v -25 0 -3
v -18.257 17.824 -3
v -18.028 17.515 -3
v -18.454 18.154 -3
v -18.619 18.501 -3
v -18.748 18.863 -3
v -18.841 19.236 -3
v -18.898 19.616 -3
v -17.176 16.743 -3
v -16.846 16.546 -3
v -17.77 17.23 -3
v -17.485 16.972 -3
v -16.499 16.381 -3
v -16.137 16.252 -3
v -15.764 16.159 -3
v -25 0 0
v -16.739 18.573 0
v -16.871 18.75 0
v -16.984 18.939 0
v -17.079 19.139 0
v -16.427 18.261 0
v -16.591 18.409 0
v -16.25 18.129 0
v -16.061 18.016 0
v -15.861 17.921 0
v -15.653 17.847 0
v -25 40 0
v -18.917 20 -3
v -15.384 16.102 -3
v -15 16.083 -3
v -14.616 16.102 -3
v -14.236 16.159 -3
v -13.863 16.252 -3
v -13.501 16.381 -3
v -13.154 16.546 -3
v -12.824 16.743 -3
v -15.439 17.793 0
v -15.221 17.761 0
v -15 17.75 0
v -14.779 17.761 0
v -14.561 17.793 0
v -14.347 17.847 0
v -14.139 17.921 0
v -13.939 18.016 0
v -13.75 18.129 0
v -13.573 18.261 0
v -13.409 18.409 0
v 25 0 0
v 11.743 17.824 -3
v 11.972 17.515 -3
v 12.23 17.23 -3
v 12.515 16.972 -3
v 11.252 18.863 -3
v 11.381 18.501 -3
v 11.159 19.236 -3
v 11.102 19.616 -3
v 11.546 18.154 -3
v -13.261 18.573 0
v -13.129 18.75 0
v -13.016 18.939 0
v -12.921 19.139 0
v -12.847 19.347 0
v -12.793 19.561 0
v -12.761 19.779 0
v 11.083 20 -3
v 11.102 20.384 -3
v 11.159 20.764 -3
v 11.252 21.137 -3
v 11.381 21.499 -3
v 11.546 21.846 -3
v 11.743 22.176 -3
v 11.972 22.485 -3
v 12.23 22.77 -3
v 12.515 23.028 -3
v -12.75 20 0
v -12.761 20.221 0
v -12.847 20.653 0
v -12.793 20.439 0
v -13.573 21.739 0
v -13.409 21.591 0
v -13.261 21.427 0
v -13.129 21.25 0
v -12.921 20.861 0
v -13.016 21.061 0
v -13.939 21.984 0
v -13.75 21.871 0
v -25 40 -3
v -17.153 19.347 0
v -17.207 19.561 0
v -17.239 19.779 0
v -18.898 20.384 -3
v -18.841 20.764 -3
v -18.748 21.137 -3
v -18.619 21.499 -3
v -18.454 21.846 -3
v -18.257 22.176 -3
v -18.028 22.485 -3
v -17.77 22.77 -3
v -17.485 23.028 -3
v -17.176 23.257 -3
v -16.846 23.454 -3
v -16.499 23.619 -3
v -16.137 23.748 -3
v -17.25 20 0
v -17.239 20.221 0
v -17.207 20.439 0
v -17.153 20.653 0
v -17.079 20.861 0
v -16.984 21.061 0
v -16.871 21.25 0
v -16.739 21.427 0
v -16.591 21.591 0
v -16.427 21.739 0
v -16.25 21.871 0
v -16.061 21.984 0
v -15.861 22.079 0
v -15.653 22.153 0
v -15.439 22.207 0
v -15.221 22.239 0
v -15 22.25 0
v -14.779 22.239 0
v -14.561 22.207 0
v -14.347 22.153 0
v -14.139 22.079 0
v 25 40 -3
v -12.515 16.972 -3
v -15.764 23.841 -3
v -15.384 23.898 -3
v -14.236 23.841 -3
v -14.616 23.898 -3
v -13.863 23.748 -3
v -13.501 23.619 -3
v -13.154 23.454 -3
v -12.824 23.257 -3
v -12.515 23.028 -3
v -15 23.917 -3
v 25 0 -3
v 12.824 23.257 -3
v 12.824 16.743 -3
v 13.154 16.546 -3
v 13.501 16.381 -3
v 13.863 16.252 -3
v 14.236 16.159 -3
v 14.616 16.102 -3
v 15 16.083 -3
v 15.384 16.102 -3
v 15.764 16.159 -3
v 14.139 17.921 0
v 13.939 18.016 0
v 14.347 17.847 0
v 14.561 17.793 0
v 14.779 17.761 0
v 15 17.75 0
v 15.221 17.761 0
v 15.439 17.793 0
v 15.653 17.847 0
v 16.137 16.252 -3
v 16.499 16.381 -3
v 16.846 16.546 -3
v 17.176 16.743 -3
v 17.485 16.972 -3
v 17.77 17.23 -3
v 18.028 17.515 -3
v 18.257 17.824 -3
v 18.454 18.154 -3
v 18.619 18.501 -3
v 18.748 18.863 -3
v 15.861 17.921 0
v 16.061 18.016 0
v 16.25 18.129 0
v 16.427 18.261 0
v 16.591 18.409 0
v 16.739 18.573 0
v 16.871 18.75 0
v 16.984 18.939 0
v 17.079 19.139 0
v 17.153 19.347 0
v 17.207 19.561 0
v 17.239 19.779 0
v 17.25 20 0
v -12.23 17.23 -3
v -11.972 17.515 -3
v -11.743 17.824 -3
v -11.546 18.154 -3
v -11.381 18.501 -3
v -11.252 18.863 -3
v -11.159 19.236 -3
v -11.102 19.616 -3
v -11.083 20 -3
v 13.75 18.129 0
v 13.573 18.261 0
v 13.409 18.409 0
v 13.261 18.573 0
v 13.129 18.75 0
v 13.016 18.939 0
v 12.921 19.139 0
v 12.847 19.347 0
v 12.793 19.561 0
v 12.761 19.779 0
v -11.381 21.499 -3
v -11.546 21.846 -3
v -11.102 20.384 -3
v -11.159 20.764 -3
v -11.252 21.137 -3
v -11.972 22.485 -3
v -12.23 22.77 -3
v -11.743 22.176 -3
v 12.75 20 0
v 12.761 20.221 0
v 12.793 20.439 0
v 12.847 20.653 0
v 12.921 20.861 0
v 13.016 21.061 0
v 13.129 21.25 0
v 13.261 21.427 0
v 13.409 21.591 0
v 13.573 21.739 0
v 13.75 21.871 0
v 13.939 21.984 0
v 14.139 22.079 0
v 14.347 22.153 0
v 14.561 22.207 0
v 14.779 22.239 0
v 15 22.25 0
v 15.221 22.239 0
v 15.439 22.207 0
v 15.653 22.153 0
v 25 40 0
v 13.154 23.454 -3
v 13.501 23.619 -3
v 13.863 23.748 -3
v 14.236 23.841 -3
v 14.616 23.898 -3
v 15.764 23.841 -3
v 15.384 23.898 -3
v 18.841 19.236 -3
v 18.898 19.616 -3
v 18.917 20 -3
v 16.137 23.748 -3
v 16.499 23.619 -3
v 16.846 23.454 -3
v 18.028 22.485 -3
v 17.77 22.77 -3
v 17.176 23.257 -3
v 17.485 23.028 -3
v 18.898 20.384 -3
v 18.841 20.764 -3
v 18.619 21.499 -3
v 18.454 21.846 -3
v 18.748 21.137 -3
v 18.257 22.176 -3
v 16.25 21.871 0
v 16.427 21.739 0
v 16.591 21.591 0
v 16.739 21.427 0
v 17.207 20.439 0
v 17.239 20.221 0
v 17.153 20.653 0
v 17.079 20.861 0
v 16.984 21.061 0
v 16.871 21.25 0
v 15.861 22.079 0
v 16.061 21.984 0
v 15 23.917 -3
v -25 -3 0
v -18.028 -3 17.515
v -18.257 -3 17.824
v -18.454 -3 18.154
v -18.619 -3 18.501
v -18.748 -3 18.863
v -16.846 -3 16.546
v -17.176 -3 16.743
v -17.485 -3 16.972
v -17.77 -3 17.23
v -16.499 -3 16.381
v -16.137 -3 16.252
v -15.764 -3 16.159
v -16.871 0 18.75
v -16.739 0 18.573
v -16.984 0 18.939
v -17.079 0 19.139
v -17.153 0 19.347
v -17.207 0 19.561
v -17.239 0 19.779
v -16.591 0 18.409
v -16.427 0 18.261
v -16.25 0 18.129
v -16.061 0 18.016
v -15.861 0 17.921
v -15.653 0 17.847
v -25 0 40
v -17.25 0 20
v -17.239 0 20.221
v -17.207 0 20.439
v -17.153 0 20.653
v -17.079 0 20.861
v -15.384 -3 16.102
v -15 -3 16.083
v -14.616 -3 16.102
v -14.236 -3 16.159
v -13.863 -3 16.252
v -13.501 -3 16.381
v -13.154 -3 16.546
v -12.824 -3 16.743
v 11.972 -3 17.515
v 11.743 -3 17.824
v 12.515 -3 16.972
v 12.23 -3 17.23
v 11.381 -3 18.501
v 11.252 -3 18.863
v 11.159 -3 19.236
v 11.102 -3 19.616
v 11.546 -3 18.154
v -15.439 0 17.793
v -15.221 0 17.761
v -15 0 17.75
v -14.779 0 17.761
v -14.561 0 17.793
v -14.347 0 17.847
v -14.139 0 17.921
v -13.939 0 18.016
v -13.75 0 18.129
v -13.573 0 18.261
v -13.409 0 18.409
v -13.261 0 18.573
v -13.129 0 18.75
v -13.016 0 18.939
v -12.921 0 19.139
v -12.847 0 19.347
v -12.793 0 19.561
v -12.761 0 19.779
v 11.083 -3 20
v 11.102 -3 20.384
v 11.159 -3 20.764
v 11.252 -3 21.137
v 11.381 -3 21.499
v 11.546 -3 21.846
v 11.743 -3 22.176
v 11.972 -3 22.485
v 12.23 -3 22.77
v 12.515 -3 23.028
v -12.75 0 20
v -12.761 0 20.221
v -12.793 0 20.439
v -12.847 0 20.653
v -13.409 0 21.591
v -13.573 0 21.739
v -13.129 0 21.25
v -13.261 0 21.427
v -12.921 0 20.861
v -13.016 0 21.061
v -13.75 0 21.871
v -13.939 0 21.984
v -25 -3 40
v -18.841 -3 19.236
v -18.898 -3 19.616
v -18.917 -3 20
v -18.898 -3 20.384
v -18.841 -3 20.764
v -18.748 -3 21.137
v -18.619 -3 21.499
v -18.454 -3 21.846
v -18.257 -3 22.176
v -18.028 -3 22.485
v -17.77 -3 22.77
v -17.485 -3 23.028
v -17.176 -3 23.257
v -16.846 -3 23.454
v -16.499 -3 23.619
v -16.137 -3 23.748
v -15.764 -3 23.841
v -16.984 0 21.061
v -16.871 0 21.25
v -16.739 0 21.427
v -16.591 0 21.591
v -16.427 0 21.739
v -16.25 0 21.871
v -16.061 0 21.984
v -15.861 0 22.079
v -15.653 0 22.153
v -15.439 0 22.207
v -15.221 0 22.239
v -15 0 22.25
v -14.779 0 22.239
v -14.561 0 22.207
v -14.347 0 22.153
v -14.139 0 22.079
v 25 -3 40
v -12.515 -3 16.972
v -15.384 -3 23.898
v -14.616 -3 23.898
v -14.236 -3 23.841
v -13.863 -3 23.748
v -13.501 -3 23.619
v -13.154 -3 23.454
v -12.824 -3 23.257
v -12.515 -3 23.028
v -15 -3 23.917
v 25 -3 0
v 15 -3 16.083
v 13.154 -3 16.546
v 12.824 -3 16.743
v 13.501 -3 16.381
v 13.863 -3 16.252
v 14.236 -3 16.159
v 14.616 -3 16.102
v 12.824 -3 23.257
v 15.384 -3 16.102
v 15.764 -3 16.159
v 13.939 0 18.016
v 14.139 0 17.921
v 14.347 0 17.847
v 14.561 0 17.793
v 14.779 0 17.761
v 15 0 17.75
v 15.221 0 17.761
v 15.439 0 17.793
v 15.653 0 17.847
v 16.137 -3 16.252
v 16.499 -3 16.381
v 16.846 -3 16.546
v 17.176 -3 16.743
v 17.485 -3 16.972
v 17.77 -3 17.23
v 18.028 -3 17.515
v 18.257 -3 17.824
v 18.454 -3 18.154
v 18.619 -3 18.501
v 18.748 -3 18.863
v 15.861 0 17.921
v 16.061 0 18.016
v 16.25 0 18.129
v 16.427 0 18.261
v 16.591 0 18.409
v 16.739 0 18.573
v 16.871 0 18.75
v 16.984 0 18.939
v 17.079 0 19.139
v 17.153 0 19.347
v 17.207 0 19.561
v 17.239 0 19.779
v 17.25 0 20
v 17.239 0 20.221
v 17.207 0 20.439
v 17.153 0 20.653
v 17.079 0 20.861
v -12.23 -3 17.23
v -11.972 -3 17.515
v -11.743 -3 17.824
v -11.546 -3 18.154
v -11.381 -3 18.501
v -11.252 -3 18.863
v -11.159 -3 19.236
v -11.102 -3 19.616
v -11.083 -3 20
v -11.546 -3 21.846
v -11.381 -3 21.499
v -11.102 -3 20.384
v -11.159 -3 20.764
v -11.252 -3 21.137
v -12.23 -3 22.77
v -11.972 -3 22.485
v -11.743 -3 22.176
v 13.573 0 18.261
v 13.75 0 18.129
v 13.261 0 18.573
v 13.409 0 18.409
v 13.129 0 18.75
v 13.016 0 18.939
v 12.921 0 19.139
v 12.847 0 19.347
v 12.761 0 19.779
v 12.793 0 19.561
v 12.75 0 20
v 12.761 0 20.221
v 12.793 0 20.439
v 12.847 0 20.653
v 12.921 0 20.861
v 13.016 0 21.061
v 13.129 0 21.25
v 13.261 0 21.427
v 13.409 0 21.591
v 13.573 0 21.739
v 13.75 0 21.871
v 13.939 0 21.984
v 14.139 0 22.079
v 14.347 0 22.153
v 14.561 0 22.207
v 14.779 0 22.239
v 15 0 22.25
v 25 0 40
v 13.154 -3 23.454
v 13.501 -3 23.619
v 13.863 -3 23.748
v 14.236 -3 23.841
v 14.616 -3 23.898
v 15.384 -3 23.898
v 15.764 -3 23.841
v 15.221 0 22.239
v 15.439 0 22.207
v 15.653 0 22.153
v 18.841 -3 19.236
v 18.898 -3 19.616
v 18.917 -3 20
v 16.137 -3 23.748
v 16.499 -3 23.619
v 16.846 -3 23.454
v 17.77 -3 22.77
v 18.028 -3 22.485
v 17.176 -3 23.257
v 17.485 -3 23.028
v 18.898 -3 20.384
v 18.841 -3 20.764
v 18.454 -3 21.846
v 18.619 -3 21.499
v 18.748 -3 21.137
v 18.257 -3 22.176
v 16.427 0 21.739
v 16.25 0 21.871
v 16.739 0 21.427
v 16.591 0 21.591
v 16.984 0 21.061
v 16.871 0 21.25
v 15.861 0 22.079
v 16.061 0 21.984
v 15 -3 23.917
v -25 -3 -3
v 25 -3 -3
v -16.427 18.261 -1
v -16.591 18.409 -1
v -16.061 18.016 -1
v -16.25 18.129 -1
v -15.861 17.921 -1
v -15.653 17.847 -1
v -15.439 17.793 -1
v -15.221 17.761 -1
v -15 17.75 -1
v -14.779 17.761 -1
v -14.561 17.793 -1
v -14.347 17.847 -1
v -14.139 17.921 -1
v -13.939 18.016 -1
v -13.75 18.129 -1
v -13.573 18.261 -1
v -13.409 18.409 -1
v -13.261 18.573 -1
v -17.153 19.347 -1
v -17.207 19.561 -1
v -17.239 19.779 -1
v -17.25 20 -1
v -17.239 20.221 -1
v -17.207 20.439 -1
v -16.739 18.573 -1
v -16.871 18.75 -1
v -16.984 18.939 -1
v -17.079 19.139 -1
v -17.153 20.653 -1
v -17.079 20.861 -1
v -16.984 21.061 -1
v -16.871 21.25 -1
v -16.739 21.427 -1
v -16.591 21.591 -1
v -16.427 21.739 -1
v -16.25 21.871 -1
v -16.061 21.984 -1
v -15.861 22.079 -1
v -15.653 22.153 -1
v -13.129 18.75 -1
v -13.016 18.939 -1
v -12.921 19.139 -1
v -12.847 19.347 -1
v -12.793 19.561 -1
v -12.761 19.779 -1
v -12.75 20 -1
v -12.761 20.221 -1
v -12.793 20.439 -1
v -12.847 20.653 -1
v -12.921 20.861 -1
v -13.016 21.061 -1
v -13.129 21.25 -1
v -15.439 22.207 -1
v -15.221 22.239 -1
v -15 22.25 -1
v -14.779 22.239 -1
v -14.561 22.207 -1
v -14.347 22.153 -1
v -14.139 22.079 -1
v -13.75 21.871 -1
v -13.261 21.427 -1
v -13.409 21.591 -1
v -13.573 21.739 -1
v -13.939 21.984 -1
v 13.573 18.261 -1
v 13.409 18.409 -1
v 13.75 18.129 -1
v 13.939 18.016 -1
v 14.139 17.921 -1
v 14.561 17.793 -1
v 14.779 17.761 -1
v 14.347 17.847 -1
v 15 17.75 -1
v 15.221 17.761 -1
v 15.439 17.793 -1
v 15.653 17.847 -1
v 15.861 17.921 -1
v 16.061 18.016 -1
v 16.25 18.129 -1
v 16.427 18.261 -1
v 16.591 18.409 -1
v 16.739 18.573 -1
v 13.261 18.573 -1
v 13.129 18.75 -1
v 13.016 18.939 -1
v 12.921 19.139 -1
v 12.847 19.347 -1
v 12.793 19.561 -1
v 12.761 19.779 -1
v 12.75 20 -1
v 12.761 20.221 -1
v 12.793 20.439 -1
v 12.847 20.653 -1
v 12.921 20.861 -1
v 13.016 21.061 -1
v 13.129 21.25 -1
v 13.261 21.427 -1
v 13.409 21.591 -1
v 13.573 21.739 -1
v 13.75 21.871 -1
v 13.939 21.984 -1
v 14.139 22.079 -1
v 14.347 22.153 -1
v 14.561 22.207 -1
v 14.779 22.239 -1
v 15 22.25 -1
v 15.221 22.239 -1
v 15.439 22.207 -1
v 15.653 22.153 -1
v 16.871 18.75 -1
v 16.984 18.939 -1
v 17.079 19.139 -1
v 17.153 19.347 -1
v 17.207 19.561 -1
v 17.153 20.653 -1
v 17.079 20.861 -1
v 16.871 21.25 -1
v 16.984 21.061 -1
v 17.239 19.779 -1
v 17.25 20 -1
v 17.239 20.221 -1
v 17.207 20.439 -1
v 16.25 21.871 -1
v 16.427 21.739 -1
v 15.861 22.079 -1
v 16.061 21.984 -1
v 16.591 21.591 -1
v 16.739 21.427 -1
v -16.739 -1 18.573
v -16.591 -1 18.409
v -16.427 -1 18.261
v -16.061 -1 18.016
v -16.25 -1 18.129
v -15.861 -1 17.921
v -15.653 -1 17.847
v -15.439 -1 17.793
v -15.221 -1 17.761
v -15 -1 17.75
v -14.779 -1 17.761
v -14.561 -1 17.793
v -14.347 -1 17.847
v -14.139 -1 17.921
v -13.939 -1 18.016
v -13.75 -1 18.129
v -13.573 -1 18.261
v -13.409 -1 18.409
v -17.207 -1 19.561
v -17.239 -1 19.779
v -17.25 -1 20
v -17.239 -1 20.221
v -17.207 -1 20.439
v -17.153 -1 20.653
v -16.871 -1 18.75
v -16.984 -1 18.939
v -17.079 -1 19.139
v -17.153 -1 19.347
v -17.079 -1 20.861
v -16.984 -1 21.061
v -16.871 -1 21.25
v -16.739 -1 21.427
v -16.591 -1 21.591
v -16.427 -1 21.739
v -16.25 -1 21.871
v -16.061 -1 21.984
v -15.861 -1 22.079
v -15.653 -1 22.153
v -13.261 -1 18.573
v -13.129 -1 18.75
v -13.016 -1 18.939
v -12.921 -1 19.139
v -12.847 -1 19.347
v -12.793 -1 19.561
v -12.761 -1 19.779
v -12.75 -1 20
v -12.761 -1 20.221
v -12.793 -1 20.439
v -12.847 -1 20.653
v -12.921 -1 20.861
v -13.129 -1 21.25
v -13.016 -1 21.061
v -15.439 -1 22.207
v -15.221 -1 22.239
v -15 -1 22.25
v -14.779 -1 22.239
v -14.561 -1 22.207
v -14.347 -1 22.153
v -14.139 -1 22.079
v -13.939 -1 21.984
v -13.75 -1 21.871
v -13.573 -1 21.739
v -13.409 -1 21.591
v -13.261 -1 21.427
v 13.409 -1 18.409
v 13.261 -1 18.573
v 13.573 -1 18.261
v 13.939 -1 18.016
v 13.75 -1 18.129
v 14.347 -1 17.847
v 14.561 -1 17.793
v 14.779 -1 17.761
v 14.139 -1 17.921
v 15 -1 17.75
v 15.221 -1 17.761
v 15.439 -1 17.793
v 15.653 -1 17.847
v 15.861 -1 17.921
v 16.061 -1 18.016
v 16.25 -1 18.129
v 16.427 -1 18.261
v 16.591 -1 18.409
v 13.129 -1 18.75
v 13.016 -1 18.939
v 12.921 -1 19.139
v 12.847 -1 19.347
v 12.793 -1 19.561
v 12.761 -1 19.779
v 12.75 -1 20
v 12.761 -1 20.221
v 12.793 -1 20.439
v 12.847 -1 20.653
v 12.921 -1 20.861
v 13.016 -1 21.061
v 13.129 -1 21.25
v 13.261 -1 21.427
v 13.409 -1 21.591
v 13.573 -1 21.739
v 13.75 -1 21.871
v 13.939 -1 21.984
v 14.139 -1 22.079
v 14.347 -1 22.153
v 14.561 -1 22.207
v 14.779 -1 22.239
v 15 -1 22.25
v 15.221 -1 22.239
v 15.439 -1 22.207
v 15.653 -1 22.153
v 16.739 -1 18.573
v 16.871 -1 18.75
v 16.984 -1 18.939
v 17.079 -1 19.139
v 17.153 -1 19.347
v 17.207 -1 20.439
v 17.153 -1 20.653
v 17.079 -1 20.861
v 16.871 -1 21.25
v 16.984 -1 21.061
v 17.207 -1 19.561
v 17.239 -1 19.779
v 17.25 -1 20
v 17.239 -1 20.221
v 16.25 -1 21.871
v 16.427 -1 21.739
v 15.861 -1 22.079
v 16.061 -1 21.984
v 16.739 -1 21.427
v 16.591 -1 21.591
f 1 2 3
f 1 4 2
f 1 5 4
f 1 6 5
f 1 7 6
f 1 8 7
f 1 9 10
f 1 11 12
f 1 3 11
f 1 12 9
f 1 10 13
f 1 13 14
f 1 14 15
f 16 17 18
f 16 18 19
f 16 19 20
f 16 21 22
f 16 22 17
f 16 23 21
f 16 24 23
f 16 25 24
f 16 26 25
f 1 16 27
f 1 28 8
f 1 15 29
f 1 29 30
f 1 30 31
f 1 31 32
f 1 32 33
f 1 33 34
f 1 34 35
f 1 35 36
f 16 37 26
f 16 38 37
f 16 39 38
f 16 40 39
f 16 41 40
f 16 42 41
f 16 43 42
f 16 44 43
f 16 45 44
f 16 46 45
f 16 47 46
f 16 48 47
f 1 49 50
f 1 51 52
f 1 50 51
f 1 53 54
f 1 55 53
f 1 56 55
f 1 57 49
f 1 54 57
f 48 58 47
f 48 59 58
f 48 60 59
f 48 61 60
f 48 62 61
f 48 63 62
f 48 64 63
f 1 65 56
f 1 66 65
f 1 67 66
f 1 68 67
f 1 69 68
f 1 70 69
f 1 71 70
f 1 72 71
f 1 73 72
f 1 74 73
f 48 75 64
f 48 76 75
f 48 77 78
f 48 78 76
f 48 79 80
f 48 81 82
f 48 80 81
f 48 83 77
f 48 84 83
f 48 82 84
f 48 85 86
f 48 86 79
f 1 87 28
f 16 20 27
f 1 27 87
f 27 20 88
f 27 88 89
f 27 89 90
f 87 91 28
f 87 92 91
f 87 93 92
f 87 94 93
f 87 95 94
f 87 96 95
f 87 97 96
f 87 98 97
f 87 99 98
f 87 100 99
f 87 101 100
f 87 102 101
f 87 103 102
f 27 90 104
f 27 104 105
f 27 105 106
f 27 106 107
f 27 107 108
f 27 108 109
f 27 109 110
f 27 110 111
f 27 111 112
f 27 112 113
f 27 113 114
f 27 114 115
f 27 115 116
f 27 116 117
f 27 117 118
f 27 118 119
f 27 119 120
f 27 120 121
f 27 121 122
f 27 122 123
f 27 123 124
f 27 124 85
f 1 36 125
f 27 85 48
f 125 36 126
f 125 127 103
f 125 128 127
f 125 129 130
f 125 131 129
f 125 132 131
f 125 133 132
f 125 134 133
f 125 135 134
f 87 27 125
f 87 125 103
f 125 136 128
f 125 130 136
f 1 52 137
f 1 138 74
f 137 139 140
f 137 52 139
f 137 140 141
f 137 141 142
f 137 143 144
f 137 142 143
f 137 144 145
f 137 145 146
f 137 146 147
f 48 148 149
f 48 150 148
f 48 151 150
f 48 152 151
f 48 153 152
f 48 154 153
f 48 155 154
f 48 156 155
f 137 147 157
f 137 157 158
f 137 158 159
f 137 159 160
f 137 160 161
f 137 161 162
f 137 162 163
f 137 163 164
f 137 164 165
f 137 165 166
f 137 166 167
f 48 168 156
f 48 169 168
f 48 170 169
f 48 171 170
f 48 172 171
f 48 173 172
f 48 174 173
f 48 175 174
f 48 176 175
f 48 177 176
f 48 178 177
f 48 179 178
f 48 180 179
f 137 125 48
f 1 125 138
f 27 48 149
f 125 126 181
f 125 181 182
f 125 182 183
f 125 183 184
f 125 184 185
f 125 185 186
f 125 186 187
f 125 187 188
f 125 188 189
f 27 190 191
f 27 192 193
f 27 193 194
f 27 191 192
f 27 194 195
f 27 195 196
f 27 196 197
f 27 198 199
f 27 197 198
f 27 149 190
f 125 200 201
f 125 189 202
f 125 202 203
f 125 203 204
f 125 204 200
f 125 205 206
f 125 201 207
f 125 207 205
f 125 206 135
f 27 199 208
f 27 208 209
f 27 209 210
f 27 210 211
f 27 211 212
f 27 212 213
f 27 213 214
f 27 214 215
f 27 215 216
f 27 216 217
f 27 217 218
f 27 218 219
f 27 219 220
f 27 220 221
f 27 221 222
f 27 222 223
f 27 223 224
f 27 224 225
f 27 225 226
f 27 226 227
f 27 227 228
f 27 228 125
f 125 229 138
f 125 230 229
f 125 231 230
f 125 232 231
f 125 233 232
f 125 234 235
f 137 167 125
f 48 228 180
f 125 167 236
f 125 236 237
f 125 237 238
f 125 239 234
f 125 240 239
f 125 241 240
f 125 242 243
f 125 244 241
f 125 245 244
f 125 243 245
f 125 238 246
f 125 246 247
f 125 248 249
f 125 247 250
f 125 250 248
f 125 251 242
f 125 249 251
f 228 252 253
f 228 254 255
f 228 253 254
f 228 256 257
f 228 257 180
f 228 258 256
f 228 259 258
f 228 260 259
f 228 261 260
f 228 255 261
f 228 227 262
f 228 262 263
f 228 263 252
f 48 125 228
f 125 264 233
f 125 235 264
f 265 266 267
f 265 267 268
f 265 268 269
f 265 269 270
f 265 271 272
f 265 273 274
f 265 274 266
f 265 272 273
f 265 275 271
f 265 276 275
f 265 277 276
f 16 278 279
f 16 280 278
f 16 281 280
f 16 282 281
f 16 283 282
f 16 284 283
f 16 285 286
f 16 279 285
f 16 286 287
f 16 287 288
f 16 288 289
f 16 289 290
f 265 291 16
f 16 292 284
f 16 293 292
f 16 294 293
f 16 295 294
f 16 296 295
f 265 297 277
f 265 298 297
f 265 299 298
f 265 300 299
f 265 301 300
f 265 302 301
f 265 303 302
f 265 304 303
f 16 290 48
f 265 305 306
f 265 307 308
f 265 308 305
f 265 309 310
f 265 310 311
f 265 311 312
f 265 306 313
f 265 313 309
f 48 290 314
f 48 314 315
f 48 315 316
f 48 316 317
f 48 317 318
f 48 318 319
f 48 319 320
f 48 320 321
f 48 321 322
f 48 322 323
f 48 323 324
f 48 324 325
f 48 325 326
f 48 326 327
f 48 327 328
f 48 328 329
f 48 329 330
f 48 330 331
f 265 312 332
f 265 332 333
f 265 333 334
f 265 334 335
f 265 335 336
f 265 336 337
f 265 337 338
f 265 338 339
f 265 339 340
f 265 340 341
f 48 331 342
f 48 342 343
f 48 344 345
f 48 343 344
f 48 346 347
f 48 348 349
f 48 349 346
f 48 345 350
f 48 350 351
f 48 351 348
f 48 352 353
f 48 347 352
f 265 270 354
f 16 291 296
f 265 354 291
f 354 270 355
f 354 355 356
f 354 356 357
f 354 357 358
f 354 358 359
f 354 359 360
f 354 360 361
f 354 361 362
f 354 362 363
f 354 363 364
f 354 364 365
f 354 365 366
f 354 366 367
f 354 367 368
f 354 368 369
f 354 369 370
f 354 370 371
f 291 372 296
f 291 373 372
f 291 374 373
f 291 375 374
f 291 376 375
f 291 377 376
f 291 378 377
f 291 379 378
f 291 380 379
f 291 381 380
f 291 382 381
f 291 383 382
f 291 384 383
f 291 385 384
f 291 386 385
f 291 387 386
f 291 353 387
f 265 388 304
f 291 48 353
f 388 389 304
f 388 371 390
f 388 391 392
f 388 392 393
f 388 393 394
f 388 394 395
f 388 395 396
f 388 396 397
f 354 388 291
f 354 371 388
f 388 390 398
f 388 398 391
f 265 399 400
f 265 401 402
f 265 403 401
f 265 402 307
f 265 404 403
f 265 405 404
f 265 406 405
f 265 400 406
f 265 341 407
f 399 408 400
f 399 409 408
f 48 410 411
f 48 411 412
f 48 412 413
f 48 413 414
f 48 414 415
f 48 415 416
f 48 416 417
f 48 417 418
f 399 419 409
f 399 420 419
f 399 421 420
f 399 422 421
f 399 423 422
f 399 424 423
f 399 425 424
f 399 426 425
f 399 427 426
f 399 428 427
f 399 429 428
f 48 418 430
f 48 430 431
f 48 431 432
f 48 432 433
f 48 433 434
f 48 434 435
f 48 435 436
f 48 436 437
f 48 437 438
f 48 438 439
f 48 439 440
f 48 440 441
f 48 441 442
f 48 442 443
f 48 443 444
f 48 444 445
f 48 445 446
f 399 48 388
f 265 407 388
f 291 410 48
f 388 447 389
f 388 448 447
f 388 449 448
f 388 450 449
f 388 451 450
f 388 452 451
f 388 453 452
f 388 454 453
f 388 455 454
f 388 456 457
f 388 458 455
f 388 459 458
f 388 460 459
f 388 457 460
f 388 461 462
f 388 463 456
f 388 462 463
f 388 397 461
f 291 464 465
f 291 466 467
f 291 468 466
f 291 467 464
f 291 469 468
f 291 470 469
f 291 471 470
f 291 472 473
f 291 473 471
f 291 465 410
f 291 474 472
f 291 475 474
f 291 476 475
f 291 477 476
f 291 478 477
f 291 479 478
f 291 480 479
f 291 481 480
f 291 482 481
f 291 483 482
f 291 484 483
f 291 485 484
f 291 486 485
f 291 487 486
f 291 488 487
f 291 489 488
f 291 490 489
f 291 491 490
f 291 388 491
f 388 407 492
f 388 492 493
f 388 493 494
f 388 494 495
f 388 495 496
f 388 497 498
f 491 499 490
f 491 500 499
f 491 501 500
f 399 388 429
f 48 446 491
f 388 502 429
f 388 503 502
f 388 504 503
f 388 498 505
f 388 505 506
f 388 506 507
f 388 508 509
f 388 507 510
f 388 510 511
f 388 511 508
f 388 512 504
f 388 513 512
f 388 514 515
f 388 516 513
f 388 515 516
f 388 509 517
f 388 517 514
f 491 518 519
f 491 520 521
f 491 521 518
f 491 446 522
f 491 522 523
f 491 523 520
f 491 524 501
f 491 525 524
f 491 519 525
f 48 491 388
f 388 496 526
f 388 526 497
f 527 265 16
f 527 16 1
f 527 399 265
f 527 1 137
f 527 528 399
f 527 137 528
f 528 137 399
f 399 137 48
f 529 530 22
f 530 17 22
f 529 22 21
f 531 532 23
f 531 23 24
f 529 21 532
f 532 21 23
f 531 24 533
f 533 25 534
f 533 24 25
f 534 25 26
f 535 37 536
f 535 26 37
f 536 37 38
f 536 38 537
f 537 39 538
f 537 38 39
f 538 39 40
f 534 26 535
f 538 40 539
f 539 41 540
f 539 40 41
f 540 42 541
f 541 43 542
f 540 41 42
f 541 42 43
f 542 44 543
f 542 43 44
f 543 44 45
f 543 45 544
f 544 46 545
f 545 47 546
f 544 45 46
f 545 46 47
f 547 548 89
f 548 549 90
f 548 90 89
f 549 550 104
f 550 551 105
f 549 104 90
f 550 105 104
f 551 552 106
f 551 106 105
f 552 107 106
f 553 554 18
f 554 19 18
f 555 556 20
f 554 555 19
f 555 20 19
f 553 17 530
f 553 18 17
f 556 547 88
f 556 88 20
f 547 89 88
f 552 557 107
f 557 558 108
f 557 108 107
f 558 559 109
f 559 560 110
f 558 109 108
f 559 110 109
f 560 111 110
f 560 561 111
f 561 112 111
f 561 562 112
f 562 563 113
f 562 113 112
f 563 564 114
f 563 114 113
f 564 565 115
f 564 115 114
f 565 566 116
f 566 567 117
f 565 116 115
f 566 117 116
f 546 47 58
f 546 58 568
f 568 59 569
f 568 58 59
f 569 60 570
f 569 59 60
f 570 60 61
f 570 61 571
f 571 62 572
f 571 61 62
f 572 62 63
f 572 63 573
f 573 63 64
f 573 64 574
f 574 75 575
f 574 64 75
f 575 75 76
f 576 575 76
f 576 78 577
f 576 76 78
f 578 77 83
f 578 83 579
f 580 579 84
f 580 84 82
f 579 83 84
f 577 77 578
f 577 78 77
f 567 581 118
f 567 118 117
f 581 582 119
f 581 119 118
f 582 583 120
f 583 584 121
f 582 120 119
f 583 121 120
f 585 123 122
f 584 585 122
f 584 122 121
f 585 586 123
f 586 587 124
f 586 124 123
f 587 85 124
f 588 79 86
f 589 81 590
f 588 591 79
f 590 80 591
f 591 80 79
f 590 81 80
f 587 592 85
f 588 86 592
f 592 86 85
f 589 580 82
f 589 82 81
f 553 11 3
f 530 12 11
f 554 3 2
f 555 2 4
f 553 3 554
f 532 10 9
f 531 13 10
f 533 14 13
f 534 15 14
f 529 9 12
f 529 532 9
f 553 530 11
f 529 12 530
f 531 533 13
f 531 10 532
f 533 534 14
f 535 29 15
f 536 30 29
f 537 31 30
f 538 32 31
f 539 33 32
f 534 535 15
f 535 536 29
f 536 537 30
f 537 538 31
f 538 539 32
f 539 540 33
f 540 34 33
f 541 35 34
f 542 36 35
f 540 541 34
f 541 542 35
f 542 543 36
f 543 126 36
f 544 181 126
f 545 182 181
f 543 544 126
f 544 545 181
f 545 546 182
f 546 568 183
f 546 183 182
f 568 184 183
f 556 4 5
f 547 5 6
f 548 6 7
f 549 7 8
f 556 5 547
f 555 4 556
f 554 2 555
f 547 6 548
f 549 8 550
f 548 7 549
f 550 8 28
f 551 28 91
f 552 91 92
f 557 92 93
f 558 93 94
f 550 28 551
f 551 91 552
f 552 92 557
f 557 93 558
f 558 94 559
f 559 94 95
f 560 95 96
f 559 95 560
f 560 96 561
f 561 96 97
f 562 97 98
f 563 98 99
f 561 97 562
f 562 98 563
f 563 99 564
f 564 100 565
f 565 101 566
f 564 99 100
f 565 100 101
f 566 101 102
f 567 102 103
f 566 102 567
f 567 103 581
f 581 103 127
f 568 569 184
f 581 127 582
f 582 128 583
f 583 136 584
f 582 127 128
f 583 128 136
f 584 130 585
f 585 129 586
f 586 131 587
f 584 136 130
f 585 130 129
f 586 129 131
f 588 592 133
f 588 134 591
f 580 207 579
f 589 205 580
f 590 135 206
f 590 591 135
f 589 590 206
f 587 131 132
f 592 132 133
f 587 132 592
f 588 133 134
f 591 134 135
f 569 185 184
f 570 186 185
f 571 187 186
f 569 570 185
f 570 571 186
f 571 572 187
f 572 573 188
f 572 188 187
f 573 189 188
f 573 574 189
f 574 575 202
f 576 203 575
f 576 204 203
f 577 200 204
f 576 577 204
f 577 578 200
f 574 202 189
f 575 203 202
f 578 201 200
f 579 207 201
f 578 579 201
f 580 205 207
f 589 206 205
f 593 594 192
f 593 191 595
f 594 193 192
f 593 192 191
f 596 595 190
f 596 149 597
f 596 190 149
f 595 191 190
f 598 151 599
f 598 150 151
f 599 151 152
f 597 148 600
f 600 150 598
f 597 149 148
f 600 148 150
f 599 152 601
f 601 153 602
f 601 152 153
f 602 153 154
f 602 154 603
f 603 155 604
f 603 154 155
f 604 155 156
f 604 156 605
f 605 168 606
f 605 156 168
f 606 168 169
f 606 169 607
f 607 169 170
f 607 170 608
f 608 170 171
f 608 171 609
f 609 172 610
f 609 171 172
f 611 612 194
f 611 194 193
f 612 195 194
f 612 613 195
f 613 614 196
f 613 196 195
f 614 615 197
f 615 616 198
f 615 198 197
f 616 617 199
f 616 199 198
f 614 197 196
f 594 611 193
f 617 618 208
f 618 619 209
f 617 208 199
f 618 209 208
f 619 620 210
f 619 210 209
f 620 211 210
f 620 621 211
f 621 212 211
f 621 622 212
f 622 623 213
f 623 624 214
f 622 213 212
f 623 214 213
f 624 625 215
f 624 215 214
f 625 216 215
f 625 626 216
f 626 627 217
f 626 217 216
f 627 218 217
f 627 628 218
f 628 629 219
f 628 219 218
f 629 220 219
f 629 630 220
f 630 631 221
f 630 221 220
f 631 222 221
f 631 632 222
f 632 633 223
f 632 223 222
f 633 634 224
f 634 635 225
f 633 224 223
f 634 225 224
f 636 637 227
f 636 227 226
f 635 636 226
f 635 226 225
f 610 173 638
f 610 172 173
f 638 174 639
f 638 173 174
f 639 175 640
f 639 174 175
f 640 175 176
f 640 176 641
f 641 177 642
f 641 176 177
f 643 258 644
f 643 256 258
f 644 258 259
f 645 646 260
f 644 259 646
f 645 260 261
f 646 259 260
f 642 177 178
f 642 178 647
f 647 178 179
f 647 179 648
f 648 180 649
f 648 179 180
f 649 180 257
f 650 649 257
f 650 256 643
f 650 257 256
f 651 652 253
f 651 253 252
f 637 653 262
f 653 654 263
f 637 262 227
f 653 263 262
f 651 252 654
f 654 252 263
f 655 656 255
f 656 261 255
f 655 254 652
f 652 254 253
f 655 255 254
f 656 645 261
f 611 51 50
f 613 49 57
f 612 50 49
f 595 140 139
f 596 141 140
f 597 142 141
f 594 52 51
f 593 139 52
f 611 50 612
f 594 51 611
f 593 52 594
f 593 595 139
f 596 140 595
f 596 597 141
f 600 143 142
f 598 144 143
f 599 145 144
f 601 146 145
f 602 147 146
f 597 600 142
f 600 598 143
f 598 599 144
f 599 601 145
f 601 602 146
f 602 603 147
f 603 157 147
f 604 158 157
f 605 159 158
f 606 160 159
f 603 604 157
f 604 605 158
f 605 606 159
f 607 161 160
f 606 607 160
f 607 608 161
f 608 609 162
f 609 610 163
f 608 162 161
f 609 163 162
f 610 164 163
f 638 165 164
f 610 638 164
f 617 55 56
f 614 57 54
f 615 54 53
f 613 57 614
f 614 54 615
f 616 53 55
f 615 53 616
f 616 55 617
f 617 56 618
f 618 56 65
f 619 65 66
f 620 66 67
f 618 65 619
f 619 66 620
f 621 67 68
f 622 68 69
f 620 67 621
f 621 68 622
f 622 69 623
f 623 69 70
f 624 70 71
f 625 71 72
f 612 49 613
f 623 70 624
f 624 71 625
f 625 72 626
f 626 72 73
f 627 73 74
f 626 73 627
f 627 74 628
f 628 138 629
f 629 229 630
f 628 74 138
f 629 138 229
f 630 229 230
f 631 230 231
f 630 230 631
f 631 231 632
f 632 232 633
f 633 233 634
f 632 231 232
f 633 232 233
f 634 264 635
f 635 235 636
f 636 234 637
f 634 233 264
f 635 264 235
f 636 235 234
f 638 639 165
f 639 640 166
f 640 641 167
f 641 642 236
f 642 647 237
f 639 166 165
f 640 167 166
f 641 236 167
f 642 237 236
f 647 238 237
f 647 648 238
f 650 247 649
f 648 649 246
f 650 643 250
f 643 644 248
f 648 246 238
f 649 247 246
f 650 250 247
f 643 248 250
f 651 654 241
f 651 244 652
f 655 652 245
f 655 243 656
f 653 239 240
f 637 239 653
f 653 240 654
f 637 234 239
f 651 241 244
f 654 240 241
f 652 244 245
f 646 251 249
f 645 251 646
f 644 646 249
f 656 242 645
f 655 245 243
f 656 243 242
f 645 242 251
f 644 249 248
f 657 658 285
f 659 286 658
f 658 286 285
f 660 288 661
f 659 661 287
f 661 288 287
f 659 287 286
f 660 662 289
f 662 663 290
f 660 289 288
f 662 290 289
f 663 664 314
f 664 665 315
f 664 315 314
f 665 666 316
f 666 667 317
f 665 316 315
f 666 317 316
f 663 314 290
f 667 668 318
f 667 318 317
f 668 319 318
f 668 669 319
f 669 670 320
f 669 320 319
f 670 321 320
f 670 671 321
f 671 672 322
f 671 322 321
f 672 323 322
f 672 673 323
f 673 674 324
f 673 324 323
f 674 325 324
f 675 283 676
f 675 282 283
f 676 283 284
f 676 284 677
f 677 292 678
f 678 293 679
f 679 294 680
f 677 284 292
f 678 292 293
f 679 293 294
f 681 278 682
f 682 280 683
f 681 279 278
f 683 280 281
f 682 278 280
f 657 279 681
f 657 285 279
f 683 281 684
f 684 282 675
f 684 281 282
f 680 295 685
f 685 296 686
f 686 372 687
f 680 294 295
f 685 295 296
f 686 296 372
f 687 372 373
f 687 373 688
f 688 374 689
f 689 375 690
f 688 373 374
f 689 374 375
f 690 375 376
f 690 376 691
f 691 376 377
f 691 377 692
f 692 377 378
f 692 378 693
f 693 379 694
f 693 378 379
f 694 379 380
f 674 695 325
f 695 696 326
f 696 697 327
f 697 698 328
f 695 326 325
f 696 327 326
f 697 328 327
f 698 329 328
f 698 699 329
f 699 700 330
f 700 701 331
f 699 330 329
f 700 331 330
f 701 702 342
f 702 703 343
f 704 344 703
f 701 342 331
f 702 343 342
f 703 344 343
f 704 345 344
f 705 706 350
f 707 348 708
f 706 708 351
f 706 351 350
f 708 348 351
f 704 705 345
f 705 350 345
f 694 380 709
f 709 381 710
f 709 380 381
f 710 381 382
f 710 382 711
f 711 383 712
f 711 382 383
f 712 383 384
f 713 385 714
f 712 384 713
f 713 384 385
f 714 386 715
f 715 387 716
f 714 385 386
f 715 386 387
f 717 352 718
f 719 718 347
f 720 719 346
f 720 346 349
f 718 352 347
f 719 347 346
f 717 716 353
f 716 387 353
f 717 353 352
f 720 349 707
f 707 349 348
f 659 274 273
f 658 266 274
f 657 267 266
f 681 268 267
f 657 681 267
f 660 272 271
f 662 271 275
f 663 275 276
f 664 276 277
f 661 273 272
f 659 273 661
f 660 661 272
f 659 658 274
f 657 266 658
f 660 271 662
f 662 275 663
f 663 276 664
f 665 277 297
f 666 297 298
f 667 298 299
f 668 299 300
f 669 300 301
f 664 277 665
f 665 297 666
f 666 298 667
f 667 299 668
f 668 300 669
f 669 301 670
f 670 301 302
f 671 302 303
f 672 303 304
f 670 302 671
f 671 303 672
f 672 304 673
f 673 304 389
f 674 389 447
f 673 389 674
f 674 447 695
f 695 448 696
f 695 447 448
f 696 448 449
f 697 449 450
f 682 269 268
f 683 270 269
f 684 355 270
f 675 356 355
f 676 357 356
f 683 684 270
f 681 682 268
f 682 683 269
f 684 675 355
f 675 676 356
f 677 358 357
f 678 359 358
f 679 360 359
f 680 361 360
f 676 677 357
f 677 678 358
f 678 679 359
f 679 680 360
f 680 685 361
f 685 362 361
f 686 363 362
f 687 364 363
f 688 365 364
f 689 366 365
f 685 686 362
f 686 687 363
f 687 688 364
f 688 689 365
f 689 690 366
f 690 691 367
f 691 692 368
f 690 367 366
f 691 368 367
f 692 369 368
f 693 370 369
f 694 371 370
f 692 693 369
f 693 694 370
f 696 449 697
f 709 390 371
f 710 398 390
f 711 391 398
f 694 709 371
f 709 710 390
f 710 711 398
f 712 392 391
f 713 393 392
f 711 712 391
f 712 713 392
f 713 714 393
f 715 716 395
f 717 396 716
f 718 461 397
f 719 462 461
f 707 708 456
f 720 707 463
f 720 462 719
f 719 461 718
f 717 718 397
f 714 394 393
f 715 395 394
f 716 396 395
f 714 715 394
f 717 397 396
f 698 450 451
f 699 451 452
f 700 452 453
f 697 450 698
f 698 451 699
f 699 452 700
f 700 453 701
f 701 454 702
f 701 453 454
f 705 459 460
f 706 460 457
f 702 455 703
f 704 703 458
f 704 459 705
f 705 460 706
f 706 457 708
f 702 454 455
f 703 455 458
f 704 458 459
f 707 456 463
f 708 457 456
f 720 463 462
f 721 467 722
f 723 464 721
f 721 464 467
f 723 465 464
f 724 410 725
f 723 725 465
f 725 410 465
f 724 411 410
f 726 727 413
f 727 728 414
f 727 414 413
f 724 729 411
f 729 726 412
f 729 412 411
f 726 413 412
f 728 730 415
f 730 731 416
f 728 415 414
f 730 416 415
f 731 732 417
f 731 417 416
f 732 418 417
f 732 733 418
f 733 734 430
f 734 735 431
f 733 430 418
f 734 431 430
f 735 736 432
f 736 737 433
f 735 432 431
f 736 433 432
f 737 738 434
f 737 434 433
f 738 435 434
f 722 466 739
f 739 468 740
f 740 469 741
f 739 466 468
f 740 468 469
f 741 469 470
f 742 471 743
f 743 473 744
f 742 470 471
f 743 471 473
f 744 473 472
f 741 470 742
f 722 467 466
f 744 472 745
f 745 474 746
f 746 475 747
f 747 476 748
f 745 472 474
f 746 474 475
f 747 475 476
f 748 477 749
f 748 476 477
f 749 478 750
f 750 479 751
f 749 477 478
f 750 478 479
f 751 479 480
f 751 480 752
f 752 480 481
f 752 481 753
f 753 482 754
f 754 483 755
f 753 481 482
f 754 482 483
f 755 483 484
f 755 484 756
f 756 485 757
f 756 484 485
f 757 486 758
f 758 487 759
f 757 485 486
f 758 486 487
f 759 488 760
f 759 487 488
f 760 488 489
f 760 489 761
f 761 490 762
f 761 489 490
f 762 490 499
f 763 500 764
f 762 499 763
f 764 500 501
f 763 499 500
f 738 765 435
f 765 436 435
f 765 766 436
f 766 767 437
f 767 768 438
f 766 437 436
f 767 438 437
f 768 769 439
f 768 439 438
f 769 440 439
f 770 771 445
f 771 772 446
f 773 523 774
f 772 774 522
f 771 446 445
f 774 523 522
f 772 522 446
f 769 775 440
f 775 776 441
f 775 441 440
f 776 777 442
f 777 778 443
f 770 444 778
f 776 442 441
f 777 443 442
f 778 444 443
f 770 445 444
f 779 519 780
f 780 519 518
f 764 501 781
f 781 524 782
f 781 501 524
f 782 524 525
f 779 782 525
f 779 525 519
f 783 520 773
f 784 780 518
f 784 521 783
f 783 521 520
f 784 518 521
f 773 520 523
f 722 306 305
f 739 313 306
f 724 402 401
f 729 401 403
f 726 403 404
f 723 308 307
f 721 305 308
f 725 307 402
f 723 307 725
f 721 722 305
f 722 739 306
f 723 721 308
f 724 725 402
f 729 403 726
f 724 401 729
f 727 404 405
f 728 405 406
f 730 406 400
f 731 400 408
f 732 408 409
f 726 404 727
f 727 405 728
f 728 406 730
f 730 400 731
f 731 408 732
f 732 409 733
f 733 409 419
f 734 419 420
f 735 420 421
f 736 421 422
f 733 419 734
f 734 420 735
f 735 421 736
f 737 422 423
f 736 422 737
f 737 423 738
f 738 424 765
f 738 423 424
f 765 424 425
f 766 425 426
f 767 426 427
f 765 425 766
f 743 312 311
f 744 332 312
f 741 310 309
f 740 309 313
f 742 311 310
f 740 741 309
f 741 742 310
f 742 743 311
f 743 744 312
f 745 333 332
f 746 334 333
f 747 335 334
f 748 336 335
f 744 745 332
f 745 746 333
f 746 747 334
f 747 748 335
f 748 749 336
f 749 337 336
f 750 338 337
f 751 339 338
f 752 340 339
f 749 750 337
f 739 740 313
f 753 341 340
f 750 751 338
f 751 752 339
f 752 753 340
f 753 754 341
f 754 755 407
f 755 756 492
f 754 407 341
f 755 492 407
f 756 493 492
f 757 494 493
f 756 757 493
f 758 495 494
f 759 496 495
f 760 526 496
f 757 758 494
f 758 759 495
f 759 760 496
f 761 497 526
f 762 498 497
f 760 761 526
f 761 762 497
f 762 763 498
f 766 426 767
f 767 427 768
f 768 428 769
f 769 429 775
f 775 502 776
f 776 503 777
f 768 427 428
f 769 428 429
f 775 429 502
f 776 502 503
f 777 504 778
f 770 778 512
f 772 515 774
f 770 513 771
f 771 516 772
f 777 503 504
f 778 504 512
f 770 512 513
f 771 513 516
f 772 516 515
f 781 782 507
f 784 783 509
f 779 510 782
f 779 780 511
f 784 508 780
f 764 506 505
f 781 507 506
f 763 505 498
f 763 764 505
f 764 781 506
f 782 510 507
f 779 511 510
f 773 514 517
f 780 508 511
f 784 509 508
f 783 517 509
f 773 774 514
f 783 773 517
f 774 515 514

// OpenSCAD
$fn = 64;

width = 50;
flange_depth = 40;
flange_height = 40;
thickness = 3;

through_d = 4.5;
countersink_d = 8;
countersink_depth = 2;

hole_x = width / 2 - 10;
eps = 0.1;

difference() {
    union() {
        // Horizontal flange: +Y, thickness toward -Z
        translate([-width / 2, 0, -thickness])
            cube([width, flange_depth, thickness]);

        // Vertical flange: +Z, thickness toward -Y
        translate([-width / 2, -thickness, 0])
            cube([width, thickness, flange_height]);

        // Sharp outside corner joining both flanges
        translate([-width / 2, -thickness, -thickness])
            cube([width, thickness, thickness]);
    }

    // Horizontal flange holes; countersinks face downward/outward
    for (x = [-hole_x, hole_x]) {
        translate([x, flange_depth / 2, -thickness - eps])
            cylinder(h = thickness + 2 * eps, d = through_d);

        translate([x, flange_depth / 2, -thickness - eps])
            cylinder(
                h = countersink_depth + eps,
                d1 = countersink_d,
                d2 = through_d
            );
    }

    // Vertical flange holes; countersinks face backward/outward
    for (x = [-hole_x, hole_x]) {
        translate([x, -thickness - eps, flange_height / 2])
            rotate([-90, 0, 0])
                cylinder(h = thickness + 2 * eps, d = through_d);

        translate([x, -thickness - eps, flange_height / 2])
            rotate([-90, 0, 0])
                cylinder(
                    h = countersink_depth + eps,
                    d1 = countersink_d,
                    d2 = through_d
                );
    }
}
